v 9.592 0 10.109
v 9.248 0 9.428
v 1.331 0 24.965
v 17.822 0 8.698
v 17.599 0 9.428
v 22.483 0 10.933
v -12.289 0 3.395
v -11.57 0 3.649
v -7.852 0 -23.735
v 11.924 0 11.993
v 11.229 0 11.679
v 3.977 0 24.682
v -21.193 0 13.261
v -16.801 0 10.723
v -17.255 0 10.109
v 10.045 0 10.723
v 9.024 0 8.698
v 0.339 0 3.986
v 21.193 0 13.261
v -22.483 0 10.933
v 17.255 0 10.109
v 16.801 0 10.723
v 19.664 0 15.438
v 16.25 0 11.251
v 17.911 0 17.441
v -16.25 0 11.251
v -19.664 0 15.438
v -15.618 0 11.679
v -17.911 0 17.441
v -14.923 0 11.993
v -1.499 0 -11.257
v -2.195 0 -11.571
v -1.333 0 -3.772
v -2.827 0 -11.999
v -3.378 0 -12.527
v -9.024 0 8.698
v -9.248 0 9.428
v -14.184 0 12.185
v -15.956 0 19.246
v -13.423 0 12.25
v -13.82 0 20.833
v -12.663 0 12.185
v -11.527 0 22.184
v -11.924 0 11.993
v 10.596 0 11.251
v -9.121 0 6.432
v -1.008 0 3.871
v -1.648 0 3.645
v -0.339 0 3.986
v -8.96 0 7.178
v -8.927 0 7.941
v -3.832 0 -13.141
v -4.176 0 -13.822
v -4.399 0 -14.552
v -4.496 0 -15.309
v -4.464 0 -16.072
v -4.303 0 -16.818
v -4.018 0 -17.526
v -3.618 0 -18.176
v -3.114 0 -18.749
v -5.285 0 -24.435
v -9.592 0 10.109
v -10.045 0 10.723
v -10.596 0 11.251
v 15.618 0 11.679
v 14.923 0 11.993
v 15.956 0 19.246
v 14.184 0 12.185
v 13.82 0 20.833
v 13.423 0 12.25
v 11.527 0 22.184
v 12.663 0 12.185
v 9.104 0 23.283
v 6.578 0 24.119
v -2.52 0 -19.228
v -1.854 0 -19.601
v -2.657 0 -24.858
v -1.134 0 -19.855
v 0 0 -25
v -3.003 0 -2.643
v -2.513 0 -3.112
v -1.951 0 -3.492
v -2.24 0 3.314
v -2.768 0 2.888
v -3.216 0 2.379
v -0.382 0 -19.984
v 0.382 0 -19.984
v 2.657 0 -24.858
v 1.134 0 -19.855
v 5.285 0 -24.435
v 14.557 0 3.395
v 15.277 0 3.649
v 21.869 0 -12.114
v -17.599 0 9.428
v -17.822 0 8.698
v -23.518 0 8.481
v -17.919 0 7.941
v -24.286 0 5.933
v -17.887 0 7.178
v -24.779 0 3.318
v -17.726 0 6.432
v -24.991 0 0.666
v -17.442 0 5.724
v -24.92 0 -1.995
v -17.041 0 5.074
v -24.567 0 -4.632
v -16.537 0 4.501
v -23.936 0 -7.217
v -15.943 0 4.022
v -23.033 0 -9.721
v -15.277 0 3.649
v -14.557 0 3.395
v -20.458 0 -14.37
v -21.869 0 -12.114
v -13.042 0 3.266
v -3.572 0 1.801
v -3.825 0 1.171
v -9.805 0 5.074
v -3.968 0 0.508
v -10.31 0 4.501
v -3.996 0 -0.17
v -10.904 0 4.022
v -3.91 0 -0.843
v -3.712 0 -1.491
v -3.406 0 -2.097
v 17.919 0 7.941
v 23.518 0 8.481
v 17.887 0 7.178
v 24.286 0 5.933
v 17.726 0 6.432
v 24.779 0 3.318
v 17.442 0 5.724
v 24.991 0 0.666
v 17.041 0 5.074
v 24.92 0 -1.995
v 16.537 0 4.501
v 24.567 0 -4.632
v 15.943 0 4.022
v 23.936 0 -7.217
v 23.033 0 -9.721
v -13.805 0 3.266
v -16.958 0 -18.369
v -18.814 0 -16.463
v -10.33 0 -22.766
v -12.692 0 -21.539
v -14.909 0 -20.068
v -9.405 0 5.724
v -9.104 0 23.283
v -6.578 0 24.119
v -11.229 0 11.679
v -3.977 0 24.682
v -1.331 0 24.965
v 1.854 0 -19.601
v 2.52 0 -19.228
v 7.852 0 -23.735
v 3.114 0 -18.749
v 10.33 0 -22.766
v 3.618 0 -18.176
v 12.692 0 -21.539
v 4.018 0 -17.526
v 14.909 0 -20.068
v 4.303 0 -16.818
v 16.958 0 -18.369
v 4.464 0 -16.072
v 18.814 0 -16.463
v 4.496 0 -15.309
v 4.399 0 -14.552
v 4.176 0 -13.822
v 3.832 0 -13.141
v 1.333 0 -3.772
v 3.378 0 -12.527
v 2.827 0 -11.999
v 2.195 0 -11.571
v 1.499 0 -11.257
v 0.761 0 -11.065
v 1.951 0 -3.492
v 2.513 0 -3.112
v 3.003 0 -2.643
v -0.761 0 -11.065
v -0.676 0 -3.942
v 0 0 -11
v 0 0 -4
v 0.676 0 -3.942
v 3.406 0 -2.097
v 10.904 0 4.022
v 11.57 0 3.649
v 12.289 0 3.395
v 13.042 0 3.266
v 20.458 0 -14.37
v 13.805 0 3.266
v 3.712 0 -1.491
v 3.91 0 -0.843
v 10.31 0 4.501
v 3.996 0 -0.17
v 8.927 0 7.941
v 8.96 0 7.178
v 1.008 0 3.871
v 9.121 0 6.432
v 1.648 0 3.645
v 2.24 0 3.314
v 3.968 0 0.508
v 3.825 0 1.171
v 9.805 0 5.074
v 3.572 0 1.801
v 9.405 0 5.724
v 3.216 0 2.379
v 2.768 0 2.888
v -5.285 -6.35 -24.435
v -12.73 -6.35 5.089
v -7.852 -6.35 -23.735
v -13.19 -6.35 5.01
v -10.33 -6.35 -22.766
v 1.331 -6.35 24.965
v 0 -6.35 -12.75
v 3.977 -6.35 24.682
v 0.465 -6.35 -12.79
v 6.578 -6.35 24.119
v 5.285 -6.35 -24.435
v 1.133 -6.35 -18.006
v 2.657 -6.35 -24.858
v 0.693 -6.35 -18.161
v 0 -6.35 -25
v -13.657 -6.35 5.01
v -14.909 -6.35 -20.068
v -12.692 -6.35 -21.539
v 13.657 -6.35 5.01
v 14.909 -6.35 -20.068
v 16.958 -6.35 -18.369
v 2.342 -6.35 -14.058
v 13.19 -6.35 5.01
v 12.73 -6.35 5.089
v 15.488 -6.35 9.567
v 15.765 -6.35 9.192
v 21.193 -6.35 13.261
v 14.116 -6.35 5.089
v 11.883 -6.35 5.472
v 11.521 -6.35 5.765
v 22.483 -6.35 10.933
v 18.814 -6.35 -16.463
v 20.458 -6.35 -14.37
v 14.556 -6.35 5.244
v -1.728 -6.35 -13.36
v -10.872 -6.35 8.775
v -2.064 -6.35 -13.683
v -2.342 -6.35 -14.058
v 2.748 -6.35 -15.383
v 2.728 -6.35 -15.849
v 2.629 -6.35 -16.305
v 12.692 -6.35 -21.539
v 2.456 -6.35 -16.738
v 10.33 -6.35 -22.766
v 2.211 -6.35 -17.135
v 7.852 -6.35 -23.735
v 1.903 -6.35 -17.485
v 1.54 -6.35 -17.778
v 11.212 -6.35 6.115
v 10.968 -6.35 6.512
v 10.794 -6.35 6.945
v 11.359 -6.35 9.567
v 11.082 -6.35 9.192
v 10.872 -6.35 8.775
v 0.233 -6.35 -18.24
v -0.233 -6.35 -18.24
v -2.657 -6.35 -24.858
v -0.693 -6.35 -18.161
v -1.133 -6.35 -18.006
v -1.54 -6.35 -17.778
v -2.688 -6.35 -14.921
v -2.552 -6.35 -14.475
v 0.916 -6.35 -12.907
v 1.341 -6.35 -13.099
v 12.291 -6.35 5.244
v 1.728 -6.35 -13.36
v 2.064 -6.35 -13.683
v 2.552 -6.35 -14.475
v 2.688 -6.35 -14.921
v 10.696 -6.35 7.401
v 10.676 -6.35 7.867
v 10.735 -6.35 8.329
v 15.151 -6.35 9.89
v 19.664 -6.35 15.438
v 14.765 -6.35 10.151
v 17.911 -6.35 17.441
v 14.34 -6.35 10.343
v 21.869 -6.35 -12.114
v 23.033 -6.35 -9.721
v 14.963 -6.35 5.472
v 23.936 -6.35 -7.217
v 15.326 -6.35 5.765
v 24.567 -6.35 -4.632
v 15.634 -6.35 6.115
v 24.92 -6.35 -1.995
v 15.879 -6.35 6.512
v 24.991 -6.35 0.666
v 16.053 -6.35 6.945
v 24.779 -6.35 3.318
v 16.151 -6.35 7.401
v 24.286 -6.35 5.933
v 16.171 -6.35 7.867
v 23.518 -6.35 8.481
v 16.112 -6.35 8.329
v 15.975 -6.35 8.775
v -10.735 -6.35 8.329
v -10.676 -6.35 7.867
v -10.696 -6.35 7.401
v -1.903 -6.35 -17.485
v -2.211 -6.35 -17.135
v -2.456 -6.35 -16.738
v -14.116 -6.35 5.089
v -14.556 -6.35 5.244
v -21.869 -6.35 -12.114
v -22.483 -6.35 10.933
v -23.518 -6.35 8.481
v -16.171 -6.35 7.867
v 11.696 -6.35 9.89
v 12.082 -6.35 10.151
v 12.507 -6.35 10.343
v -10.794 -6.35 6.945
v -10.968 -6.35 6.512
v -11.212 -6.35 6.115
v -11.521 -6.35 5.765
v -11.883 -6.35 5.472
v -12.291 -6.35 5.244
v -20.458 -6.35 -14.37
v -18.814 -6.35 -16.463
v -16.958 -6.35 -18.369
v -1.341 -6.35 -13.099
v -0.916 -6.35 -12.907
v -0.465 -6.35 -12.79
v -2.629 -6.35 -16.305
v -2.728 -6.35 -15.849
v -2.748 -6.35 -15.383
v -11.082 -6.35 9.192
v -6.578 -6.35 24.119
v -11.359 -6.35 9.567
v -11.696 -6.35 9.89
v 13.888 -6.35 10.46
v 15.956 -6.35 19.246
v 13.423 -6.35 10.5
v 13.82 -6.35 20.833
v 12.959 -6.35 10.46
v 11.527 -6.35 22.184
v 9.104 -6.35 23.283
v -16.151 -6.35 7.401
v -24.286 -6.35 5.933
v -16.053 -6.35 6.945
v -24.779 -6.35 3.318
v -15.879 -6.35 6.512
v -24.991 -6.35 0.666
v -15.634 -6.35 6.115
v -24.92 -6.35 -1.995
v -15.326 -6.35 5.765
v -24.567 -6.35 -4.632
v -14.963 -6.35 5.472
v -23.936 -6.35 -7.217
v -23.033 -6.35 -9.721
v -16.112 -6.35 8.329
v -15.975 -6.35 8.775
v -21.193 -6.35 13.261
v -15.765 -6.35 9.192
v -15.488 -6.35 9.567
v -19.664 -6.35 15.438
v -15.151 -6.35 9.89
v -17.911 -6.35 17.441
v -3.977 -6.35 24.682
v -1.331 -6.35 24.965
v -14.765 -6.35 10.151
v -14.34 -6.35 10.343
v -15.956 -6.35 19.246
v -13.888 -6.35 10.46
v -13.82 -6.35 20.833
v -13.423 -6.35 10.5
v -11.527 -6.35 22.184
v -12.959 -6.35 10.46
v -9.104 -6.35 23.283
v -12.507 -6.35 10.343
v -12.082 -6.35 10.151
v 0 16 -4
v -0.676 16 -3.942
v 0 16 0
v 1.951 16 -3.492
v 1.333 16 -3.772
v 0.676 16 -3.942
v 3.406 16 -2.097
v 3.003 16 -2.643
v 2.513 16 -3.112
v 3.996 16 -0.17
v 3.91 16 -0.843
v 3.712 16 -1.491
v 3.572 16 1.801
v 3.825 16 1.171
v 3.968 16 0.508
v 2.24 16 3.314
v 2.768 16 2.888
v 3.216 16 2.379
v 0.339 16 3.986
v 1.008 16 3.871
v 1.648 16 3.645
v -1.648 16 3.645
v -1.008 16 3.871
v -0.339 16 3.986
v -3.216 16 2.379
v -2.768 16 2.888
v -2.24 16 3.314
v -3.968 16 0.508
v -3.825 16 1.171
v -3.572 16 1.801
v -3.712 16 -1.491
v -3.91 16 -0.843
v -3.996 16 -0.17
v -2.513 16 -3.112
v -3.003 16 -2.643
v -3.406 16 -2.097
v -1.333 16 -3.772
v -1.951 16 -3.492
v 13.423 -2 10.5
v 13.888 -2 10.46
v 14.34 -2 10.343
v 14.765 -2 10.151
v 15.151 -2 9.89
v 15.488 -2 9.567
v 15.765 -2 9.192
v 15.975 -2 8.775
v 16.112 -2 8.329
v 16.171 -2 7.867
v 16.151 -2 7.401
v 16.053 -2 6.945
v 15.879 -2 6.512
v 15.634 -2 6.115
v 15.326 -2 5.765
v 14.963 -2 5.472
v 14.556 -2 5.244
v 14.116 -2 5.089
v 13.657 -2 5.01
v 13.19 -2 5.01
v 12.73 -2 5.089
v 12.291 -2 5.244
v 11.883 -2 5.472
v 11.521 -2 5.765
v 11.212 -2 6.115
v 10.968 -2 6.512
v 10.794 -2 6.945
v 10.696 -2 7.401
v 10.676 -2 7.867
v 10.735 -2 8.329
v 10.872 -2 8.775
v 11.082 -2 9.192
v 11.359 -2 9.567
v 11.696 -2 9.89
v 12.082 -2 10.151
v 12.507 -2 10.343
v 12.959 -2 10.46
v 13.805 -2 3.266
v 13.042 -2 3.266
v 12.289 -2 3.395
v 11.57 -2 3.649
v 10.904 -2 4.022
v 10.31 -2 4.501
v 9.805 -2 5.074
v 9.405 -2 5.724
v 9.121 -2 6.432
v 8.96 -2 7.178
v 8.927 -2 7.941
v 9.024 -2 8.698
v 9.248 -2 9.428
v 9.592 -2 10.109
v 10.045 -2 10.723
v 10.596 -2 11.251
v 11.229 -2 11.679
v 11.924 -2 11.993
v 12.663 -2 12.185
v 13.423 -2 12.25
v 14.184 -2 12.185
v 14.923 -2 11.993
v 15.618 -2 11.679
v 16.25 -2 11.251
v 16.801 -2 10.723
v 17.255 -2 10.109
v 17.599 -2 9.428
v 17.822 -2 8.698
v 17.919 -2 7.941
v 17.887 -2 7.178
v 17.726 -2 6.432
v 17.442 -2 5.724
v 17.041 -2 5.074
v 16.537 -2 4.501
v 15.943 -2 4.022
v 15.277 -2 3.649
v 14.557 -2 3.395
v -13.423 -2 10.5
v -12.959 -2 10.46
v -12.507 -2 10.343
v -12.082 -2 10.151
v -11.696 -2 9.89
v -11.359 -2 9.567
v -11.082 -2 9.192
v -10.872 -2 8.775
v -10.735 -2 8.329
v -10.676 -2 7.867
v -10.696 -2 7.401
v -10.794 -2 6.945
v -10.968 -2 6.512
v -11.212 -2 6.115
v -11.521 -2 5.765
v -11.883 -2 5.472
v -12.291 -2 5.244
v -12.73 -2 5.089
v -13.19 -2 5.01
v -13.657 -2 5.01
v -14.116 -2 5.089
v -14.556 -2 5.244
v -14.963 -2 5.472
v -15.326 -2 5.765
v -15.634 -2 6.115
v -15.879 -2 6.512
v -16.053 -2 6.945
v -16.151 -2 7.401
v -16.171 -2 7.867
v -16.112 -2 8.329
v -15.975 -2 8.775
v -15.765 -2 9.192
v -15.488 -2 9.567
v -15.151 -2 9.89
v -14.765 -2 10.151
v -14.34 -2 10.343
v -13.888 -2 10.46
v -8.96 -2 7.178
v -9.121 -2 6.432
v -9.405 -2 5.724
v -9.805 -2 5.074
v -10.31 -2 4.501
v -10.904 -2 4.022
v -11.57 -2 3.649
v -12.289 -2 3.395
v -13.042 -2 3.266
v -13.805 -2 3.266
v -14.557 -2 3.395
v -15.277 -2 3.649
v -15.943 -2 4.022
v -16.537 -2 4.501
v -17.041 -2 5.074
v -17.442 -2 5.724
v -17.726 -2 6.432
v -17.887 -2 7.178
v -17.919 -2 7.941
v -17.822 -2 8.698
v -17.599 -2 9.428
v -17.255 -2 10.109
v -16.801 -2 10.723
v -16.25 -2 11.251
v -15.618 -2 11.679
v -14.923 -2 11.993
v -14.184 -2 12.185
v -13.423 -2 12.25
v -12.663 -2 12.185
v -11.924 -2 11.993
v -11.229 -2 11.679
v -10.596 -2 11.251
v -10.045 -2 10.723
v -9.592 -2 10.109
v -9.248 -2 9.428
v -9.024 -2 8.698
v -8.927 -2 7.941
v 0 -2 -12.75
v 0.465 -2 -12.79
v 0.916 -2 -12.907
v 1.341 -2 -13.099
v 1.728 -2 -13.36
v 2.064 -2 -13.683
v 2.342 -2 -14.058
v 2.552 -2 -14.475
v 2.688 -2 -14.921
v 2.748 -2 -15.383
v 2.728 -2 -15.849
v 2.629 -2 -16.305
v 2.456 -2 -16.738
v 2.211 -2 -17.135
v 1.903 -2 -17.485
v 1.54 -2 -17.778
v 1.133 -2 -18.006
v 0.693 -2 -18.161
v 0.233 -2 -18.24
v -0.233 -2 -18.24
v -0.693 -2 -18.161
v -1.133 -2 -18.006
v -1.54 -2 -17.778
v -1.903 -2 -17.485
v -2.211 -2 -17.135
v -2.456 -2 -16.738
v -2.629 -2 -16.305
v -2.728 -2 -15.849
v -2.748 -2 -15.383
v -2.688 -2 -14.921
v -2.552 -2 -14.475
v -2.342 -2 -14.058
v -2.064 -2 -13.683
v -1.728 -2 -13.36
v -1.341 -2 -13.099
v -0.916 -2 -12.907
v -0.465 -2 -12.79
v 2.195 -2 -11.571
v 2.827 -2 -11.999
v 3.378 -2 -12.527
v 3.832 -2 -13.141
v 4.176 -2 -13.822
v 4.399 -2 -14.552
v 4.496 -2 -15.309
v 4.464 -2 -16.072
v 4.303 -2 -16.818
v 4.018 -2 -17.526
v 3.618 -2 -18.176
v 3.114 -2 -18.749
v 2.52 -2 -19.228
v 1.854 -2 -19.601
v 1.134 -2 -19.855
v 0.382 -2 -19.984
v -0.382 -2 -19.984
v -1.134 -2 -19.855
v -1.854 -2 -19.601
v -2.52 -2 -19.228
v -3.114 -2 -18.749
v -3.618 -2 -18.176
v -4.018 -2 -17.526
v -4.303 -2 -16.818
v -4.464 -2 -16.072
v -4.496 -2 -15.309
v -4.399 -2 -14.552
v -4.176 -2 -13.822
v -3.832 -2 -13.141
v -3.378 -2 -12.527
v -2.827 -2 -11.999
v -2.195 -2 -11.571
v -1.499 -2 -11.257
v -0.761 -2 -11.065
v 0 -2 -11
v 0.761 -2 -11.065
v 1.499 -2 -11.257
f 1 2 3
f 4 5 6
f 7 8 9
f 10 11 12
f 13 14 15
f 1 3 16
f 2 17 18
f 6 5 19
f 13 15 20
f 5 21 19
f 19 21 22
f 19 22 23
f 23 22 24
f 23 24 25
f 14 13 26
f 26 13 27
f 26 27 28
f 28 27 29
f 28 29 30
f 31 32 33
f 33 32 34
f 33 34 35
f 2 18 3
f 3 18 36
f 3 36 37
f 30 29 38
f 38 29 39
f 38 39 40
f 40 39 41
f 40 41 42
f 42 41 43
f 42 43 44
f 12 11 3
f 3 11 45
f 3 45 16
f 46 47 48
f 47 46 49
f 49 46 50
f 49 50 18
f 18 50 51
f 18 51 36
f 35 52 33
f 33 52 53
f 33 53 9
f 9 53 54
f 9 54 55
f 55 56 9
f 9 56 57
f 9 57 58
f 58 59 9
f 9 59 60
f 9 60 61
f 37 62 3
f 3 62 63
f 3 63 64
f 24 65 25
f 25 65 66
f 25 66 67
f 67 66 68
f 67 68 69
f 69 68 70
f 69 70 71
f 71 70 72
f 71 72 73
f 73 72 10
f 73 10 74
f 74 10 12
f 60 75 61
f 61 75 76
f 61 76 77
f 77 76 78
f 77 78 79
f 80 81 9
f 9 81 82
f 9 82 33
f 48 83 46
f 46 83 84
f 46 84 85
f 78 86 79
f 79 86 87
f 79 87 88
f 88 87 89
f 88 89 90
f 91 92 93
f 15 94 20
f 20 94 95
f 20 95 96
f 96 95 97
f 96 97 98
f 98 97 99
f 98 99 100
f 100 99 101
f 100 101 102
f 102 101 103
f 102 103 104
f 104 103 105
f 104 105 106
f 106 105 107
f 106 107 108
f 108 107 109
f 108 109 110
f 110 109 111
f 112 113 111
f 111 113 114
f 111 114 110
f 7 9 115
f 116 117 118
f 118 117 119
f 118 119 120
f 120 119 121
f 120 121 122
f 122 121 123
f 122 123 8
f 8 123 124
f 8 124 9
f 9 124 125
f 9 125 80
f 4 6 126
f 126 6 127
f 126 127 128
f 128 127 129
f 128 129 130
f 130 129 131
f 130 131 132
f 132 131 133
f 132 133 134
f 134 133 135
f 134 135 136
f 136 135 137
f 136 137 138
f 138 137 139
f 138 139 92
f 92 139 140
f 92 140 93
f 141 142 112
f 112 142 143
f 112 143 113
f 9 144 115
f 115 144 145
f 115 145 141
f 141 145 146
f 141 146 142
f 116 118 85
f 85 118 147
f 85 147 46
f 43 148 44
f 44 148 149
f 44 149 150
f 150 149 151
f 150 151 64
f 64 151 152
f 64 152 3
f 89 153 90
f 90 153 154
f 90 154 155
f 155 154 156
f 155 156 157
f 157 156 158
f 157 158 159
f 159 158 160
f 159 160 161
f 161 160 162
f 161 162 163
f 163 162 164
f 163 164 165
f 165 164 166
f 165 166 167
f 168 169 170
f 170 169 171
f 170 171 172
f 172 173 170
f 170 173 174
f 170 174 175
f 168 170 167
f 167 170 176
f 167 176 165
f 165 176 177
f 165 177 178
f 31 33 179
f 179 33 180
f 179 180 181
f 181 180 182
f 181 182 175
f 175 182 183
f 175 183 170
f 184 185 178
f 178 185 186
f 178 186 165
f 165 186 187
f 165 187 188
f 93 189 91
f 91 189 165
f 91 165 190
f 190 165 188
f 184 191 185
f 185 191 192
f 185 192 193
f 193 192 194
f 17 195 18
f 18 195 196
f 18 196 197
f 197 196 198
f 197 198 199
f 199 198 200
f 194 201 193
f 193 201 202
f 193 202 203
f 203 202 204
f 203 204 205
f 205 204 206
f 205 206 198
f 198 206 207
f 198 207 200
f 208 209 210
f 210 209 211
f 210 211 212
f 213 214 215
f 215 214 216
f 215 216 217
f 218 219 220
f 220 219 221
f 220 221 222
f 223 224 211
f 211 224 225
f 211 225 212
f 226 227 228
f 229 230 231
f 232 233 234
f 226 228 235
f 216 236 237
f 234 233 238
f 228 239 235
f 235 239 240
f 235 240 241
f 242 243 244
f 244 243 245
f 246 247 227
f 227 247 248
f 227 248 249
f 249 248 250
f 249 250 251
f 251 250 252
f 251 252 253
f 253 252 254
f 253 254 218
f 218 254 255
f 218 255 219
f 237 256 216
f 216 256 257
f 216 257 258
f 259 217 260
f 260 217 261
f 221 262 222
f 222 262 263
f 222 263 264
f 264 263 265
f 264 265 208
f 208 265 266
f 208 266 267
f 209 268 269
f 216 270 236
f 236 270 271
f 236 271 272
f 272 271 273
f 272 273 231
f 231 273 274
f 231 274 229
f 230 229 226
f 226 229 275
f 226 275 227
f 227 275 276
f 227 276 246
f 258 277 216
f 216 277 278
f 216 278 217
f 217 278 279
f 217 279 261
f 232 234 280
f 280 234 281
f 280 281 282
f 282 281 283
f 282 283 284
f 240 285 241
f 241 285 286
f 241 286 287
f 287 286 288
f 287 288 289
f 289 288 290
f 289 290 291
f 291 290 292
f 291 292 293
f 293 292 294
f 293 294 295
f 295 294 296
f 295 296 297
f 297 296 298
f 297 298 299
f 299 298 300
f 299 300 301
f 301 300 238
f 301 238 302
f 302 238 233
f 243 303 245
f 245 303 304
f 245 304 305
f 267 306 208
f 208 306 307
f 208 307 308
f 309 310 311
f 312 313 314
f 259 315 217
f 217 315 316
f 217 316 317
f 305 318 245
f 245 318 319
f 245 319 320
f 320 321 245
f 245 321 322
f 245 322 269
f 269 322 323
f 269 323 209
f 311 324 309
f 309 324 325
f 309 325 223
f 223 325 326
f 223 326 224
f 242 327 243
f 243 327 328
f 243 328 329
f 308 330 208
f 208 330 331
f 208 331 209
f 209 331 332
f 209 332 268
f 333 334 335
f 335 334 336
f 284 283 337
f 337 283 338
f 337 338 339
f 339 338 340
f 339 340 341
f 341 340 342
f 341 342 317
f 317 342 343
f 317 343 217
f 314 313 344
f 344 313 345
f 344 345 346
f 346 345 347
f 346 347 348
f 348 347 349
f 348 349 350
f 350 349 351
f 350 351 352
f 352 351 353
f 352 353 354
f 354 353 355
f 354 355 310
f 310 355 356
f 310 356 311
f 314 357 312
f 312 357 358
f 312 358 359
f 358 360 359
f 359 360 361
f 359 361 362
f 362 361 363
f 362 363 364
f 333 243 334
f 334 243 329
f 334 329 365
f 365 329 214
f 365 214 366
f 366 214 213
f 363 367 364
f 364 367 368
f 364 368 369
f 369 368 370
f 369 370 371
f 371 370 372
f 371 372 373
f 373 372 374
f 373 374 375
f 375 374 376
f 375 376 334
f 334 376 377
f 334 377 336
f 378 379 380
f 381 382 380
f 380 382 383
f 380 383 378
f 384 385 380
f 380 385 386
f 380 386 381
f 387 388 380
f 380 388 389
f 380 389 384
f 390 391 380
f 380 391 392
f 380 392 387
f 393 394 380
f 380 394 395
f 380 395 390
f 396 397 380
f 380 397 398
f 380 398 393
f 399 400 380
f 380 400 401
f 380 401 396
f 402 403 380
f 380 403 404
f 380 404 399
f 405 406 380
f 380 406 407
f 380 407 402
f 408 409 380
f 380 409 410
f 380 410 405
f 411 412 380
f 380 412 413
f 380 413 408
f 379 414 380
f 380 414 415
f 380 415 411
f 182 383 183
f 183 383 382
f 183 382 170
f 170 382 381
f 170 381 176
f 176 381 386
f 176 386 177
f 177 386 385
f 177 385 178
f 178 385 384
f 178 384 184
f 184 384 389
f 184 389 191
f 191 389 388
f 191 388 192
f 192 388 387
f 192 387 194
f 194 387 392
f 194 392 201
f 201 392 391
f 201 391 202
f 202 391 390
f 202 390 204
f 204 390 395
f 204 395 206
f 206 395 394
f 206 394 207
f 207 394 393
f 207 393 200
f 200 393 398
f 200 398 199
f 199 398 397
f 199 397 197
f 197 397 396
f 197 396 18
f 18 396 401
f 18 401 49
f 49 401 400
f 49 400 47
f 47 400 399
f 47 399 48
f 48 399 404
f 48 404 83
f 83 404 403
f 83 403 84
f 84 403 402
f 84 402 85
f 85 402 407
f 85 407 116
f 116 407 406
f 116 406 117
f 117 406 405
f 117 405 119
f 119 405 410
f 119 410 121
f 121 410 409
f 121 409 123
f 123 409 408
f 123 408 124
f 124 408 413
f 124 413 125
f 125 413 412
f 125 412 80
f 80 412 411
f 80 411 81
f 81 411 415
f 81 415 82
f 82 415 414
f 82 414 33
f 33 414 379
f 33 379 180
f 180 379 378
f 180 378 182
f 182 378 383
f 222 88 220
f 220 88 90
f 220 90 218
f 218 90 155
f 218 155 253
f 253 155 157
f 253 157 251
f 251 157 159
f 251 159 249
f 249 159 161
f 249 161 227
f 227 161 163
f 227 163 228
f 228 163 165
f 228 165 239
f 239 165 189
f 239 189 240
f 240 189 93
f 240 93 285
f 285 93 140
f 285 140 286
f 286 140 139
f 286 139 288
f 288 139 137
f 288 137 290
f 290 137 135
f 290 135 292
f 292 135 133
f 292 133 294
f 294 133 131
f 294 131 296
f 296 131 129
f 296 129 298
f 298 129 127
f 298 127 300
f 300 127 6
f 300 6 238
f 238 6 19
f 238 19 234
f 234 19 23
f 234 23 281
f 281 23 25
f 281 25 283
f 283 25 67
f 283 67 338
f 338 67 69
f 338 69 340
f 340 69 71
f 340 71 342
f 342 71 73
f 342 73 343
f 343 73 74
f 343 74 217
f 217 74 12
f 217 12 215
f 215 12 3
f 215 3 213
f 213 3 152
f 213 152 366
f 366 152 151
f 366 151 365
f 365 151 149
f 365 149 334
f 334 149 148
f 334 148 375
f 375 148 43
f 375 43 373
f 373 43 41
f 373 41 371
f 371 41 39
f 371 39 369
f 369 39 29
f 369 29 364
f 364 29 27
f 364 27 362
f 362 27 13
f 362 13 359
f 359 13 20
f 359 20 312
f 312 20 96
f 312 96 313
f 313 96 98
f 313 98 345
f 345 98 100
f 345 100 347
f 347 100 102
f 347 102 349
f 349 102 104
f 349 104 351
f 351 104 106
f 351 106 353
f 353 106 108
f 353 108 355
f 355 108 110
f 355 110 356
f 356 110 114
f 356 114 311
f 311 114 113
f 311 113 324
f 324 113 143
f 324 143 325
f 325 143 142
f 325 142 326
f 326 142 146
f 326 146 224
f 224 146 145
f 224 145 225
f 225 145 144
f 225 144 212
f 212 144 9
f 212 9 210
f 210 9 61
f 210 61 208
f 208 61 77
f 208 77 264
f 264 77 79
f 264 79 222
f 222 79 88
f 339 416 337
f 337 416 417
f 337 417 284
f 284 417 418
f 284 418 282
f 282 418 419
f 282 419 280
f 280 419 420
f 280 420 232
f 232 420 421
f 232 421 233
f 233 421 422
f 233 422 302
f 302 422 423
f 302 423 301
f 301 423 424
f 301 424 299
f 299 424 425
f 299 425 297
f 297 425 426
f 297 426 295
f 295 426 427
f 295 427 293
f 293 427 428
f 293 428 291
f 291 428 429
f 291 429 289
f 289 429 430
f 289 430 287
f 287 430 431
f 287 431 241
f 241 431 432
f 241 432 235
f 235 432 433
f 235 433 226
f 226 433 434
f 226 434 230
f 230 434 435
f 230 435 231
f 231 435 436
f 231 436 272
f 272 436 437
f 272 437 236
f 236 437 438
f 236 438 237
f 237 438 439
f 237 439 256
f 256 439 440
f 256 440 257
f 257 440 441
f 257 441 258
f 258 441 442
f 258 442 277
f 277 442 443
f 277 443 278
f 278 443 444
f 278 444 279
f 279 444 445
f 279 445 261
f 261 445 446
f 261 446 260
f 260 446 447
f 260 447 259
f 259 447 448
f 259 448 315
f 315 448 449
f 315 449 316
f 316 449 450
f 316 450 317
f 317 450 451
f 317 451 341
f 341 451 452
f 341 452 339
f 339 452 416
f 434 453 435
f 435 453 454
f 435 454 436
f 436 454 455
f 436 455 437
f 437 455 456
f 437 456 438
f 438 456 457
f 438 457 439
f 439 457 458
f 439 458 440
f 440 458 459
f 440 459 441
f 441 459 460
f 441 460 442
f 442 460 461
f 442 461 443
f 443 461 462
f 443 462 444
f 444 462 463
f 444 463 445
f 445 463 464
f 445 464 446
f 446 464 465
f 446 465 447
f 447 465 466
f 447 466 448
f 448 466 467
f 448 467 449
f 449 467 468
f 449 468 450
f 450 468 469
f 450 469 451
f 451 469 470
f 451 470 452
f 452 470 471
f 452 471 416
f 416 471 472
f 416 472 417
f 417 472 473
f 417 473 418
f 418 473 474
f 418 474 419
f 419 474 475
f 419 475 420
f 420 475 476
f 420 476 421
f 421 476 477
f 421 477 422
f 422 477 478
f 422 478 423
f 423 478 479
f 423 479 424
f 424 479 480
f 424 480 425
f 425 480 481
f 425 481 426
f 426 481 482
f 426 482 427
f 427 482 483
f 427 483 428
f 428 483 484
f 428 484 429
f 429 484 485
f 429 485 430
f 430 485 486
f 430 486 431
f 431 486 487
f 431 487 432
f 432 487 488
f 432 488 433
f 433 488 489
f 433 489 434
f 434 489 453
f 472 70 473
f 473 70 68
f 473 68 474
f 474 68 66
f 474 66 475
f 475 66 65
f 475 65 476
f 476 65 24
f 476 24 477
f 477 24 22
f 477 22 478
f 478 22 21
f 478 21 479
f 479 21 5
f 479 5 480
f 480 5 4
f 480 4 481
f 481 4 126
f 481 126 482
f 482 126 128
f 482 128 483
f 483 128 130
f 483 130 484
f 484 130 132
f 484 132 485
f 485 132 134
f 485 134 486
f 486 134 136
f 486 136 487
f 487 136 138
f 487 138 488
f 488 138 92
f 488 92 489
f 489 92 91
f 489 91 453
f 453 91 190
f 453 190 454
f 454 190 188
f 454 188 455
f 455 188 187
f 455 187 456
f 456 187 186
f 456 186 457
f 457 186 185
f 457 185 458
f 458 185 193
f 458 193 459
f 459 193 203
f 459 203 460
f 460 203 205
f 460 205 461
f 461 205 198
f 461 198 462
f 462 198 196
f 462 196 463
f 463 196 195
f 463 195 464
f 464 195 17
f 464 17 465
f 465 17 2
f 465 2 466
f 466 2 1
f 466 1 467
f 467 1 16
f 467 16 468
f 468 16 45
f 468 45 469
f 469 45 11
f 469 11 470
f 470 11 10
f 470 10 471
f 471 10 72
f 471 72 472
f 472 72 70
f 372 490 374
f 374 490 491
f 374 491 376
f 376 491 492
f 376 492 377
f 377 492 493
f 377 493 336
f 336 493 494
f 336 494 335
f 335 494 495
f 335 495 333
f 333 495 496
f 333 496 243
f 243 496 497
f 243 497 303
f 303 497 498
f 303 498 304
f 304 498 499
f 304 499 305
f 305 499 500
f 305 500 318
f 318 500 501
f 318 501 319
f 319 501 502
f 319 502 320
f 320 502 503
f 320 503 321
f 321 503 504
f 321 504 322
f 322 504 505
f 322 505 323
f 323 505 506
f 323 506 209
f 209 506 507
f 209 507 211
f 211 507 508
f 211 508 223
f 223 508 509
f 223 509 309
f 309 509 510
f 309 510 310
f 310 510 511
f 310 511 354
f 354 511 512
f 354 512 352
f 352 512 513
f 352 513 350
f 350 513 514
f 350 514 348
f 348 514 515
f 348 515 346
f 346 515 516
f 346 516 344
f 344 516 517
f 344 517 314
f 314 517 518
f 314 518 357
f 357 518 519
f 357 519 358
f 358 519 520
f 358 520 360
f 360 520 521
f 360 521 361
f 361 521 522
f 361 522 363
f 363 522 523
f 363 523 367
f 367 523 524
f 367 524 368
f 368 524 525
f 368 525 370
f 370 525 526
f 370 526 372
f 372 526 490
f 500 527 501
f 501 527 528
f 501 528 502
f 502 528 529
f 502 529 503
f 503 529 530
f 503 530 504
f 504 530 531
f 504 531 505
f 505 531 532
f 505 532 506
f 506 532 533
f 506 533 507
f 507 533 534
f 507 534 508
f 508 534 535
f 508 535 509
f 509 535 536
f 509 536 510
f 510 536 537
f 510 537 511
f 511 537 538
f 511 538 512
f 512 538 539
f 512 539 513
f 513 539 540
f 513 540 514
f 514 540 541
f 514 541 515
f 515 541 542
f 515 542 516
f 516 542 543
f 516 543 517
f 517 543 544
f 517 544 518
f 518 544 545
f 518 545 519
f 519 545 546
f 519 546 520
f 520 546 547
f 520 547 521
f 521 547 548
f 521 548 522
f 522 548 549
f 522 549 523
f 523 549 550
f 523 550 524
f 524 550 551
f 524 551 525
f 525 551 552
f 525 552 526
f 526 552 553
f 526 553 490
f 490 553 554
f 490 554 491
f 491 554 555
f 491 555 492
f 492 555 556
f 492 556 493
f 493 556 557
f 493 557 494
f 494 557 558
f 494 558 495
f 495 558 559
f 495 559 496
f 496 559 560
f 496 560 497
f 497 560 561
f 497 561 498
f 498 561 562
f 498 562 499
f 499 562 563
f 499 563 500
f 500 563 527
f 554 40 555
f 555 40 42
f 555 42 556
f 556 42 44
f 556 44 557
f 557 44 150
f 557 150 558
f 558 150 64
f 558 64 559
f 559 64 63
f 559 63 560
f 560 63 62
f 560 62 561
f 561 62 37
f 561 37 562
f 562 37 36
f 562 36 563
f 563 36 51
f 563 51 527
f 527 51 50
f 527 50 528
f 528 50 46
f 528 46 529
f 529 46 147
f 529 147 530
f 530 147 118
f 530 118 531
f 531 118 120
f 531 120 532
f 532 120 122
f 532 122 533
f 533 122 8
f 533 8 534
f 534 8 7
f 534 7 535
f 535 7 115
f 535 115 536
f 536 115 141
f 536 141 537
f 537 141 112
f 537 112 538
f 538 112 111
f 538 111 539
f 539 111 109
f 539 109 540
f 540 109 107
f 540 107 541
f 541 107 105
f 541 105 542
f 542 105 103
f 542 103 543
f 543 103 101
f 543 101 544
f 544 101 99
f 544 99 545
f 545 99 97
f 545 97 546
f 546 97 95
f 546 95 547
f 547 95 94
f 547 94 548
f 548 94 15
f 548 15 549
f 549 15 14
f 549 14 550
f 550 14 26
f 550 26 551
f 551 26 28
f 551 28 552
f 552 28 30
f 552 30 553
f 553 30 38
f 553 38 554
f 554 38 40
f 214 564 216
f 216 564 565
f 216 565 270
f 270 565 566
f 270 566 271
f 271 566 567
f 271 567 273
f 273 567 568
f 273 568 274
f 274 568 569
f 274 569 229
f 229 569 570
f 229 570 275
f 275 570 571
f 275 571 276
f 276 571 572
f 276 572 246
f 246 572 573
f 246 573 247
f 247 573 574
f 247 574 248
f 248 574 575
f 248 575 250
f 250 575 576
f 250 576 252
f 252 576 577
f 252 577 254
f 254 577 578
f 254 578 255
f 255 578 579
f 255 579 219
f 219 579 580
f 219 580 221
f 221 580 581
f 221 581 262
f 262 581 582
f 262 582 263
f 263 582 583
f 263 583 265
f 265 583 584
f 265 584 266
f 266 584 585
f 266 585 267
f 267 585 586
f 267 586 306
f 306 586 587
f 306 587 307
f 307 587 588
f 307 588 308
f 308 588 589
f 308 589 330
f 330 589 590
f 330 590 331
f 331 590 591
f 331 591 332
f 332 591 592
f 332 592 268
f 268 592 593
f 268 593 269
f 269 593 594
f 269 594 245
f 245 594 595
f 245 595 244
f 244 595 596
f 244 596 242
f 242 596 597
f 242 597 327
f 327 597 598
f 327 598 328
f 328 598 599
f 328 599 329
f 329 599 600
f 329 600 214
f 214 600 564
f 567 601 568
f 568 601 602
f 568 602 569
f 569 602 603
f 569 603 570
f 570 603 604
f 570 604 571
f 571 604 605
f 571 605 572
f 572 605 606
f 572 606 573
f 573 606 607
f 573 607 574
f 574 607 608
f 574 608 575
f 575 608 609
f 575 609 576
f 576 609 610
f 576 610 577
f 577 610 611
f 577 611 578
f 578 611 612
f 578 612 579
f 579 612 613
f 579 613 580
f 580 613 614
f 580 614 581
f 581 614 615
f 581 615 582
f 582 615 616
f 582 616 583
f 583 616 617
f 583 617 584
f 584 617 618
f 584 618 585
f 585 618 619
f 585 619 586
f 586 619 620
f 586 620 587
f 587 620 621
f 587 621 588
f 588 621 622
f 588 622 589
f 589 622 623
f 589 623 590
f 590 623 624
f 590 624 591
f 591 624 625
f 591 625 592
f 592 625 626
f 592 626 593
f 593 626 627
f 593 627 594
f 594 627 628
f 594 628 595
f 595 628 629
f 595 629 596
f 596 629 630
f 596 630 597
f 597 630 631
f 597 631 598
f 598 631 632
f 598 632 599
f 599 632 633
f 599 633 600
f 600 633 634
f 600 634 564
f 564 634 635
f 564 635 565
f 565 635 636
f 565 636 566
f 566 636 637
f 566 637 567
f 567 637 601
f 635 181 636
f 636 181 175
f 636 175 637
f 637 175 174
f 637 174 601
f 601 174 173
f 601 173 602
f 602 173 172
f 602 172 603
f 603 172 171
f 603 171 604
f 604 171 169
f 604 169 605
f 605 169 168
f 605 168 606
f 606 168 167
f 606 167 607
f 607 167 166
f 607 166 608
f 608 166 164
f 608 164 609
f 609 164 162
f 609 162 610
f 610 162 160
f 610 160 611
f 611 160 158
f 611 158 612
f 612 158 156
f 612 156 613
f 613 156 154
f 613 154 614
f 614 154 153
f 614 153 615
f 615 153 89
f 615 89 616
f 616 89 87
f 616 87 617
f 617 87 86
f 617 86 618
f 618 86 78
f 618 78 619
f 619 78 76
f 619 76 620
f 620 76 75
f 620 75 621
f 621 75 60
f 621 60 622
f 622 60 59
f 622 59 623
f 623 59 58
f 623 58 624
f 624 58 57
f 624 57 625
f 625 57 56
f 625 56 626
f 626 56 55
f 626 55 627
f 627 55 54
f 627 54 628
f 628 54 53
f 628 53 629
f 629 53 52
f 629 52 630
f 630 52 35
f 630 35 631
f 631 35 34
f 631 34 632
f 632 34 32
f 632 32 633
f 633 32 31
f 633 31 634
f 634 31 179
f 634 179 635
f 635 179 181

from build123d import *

# Parameters (mm, degrees)
CBORE_FOR_M5_SHCS1_D           = 5.5
CBORE_FOR_M5_SHCS1_CBORE_D     = 9
CBORE_FOR_M5_SHCS1_CBORE_DEPTH = 2


with BuildPart() as part:
    # Sketch1 → Revolve1 (revolve)
    with BuildSketch(Plane(origin=(0, 0, 0), x_dir=(0, 0, -1), z_dir=(1, 0, 0)), mode=Mode.PRIVATE) as revolve1_sk:
        Polygon((0, -6.35), (0, 16), (-4, 16), (-4, 0), (-25, 0), (-25, -6.35), align=None)
    revolve(revolve1_sk.sketch.rotate(Axis((0, -6.35, 0), (0, 1, 0)), 180), axis=Axis((0, -6.35, 0), (0, 1, 0)))

    # CBORE for M5 SHCS1 (through all)
    with Locations(Plane(origin=(0, 0, 0), x_dir=(-1, 0, 0), z_dir=(0, 1, 0))):
        with Locations((0, -15.5), (13.423393759, 7.75), (-13.423393759, 7.75)):
            CounterBoreHole(CBORE_FOR_M5_SHCS1_D / 2, CBORE_FOR_M5_SHCS1_CBORE_D / 2, CBORE_FOR_M5_SHCS1_CBORE_DEPTH)


solid = part.part
